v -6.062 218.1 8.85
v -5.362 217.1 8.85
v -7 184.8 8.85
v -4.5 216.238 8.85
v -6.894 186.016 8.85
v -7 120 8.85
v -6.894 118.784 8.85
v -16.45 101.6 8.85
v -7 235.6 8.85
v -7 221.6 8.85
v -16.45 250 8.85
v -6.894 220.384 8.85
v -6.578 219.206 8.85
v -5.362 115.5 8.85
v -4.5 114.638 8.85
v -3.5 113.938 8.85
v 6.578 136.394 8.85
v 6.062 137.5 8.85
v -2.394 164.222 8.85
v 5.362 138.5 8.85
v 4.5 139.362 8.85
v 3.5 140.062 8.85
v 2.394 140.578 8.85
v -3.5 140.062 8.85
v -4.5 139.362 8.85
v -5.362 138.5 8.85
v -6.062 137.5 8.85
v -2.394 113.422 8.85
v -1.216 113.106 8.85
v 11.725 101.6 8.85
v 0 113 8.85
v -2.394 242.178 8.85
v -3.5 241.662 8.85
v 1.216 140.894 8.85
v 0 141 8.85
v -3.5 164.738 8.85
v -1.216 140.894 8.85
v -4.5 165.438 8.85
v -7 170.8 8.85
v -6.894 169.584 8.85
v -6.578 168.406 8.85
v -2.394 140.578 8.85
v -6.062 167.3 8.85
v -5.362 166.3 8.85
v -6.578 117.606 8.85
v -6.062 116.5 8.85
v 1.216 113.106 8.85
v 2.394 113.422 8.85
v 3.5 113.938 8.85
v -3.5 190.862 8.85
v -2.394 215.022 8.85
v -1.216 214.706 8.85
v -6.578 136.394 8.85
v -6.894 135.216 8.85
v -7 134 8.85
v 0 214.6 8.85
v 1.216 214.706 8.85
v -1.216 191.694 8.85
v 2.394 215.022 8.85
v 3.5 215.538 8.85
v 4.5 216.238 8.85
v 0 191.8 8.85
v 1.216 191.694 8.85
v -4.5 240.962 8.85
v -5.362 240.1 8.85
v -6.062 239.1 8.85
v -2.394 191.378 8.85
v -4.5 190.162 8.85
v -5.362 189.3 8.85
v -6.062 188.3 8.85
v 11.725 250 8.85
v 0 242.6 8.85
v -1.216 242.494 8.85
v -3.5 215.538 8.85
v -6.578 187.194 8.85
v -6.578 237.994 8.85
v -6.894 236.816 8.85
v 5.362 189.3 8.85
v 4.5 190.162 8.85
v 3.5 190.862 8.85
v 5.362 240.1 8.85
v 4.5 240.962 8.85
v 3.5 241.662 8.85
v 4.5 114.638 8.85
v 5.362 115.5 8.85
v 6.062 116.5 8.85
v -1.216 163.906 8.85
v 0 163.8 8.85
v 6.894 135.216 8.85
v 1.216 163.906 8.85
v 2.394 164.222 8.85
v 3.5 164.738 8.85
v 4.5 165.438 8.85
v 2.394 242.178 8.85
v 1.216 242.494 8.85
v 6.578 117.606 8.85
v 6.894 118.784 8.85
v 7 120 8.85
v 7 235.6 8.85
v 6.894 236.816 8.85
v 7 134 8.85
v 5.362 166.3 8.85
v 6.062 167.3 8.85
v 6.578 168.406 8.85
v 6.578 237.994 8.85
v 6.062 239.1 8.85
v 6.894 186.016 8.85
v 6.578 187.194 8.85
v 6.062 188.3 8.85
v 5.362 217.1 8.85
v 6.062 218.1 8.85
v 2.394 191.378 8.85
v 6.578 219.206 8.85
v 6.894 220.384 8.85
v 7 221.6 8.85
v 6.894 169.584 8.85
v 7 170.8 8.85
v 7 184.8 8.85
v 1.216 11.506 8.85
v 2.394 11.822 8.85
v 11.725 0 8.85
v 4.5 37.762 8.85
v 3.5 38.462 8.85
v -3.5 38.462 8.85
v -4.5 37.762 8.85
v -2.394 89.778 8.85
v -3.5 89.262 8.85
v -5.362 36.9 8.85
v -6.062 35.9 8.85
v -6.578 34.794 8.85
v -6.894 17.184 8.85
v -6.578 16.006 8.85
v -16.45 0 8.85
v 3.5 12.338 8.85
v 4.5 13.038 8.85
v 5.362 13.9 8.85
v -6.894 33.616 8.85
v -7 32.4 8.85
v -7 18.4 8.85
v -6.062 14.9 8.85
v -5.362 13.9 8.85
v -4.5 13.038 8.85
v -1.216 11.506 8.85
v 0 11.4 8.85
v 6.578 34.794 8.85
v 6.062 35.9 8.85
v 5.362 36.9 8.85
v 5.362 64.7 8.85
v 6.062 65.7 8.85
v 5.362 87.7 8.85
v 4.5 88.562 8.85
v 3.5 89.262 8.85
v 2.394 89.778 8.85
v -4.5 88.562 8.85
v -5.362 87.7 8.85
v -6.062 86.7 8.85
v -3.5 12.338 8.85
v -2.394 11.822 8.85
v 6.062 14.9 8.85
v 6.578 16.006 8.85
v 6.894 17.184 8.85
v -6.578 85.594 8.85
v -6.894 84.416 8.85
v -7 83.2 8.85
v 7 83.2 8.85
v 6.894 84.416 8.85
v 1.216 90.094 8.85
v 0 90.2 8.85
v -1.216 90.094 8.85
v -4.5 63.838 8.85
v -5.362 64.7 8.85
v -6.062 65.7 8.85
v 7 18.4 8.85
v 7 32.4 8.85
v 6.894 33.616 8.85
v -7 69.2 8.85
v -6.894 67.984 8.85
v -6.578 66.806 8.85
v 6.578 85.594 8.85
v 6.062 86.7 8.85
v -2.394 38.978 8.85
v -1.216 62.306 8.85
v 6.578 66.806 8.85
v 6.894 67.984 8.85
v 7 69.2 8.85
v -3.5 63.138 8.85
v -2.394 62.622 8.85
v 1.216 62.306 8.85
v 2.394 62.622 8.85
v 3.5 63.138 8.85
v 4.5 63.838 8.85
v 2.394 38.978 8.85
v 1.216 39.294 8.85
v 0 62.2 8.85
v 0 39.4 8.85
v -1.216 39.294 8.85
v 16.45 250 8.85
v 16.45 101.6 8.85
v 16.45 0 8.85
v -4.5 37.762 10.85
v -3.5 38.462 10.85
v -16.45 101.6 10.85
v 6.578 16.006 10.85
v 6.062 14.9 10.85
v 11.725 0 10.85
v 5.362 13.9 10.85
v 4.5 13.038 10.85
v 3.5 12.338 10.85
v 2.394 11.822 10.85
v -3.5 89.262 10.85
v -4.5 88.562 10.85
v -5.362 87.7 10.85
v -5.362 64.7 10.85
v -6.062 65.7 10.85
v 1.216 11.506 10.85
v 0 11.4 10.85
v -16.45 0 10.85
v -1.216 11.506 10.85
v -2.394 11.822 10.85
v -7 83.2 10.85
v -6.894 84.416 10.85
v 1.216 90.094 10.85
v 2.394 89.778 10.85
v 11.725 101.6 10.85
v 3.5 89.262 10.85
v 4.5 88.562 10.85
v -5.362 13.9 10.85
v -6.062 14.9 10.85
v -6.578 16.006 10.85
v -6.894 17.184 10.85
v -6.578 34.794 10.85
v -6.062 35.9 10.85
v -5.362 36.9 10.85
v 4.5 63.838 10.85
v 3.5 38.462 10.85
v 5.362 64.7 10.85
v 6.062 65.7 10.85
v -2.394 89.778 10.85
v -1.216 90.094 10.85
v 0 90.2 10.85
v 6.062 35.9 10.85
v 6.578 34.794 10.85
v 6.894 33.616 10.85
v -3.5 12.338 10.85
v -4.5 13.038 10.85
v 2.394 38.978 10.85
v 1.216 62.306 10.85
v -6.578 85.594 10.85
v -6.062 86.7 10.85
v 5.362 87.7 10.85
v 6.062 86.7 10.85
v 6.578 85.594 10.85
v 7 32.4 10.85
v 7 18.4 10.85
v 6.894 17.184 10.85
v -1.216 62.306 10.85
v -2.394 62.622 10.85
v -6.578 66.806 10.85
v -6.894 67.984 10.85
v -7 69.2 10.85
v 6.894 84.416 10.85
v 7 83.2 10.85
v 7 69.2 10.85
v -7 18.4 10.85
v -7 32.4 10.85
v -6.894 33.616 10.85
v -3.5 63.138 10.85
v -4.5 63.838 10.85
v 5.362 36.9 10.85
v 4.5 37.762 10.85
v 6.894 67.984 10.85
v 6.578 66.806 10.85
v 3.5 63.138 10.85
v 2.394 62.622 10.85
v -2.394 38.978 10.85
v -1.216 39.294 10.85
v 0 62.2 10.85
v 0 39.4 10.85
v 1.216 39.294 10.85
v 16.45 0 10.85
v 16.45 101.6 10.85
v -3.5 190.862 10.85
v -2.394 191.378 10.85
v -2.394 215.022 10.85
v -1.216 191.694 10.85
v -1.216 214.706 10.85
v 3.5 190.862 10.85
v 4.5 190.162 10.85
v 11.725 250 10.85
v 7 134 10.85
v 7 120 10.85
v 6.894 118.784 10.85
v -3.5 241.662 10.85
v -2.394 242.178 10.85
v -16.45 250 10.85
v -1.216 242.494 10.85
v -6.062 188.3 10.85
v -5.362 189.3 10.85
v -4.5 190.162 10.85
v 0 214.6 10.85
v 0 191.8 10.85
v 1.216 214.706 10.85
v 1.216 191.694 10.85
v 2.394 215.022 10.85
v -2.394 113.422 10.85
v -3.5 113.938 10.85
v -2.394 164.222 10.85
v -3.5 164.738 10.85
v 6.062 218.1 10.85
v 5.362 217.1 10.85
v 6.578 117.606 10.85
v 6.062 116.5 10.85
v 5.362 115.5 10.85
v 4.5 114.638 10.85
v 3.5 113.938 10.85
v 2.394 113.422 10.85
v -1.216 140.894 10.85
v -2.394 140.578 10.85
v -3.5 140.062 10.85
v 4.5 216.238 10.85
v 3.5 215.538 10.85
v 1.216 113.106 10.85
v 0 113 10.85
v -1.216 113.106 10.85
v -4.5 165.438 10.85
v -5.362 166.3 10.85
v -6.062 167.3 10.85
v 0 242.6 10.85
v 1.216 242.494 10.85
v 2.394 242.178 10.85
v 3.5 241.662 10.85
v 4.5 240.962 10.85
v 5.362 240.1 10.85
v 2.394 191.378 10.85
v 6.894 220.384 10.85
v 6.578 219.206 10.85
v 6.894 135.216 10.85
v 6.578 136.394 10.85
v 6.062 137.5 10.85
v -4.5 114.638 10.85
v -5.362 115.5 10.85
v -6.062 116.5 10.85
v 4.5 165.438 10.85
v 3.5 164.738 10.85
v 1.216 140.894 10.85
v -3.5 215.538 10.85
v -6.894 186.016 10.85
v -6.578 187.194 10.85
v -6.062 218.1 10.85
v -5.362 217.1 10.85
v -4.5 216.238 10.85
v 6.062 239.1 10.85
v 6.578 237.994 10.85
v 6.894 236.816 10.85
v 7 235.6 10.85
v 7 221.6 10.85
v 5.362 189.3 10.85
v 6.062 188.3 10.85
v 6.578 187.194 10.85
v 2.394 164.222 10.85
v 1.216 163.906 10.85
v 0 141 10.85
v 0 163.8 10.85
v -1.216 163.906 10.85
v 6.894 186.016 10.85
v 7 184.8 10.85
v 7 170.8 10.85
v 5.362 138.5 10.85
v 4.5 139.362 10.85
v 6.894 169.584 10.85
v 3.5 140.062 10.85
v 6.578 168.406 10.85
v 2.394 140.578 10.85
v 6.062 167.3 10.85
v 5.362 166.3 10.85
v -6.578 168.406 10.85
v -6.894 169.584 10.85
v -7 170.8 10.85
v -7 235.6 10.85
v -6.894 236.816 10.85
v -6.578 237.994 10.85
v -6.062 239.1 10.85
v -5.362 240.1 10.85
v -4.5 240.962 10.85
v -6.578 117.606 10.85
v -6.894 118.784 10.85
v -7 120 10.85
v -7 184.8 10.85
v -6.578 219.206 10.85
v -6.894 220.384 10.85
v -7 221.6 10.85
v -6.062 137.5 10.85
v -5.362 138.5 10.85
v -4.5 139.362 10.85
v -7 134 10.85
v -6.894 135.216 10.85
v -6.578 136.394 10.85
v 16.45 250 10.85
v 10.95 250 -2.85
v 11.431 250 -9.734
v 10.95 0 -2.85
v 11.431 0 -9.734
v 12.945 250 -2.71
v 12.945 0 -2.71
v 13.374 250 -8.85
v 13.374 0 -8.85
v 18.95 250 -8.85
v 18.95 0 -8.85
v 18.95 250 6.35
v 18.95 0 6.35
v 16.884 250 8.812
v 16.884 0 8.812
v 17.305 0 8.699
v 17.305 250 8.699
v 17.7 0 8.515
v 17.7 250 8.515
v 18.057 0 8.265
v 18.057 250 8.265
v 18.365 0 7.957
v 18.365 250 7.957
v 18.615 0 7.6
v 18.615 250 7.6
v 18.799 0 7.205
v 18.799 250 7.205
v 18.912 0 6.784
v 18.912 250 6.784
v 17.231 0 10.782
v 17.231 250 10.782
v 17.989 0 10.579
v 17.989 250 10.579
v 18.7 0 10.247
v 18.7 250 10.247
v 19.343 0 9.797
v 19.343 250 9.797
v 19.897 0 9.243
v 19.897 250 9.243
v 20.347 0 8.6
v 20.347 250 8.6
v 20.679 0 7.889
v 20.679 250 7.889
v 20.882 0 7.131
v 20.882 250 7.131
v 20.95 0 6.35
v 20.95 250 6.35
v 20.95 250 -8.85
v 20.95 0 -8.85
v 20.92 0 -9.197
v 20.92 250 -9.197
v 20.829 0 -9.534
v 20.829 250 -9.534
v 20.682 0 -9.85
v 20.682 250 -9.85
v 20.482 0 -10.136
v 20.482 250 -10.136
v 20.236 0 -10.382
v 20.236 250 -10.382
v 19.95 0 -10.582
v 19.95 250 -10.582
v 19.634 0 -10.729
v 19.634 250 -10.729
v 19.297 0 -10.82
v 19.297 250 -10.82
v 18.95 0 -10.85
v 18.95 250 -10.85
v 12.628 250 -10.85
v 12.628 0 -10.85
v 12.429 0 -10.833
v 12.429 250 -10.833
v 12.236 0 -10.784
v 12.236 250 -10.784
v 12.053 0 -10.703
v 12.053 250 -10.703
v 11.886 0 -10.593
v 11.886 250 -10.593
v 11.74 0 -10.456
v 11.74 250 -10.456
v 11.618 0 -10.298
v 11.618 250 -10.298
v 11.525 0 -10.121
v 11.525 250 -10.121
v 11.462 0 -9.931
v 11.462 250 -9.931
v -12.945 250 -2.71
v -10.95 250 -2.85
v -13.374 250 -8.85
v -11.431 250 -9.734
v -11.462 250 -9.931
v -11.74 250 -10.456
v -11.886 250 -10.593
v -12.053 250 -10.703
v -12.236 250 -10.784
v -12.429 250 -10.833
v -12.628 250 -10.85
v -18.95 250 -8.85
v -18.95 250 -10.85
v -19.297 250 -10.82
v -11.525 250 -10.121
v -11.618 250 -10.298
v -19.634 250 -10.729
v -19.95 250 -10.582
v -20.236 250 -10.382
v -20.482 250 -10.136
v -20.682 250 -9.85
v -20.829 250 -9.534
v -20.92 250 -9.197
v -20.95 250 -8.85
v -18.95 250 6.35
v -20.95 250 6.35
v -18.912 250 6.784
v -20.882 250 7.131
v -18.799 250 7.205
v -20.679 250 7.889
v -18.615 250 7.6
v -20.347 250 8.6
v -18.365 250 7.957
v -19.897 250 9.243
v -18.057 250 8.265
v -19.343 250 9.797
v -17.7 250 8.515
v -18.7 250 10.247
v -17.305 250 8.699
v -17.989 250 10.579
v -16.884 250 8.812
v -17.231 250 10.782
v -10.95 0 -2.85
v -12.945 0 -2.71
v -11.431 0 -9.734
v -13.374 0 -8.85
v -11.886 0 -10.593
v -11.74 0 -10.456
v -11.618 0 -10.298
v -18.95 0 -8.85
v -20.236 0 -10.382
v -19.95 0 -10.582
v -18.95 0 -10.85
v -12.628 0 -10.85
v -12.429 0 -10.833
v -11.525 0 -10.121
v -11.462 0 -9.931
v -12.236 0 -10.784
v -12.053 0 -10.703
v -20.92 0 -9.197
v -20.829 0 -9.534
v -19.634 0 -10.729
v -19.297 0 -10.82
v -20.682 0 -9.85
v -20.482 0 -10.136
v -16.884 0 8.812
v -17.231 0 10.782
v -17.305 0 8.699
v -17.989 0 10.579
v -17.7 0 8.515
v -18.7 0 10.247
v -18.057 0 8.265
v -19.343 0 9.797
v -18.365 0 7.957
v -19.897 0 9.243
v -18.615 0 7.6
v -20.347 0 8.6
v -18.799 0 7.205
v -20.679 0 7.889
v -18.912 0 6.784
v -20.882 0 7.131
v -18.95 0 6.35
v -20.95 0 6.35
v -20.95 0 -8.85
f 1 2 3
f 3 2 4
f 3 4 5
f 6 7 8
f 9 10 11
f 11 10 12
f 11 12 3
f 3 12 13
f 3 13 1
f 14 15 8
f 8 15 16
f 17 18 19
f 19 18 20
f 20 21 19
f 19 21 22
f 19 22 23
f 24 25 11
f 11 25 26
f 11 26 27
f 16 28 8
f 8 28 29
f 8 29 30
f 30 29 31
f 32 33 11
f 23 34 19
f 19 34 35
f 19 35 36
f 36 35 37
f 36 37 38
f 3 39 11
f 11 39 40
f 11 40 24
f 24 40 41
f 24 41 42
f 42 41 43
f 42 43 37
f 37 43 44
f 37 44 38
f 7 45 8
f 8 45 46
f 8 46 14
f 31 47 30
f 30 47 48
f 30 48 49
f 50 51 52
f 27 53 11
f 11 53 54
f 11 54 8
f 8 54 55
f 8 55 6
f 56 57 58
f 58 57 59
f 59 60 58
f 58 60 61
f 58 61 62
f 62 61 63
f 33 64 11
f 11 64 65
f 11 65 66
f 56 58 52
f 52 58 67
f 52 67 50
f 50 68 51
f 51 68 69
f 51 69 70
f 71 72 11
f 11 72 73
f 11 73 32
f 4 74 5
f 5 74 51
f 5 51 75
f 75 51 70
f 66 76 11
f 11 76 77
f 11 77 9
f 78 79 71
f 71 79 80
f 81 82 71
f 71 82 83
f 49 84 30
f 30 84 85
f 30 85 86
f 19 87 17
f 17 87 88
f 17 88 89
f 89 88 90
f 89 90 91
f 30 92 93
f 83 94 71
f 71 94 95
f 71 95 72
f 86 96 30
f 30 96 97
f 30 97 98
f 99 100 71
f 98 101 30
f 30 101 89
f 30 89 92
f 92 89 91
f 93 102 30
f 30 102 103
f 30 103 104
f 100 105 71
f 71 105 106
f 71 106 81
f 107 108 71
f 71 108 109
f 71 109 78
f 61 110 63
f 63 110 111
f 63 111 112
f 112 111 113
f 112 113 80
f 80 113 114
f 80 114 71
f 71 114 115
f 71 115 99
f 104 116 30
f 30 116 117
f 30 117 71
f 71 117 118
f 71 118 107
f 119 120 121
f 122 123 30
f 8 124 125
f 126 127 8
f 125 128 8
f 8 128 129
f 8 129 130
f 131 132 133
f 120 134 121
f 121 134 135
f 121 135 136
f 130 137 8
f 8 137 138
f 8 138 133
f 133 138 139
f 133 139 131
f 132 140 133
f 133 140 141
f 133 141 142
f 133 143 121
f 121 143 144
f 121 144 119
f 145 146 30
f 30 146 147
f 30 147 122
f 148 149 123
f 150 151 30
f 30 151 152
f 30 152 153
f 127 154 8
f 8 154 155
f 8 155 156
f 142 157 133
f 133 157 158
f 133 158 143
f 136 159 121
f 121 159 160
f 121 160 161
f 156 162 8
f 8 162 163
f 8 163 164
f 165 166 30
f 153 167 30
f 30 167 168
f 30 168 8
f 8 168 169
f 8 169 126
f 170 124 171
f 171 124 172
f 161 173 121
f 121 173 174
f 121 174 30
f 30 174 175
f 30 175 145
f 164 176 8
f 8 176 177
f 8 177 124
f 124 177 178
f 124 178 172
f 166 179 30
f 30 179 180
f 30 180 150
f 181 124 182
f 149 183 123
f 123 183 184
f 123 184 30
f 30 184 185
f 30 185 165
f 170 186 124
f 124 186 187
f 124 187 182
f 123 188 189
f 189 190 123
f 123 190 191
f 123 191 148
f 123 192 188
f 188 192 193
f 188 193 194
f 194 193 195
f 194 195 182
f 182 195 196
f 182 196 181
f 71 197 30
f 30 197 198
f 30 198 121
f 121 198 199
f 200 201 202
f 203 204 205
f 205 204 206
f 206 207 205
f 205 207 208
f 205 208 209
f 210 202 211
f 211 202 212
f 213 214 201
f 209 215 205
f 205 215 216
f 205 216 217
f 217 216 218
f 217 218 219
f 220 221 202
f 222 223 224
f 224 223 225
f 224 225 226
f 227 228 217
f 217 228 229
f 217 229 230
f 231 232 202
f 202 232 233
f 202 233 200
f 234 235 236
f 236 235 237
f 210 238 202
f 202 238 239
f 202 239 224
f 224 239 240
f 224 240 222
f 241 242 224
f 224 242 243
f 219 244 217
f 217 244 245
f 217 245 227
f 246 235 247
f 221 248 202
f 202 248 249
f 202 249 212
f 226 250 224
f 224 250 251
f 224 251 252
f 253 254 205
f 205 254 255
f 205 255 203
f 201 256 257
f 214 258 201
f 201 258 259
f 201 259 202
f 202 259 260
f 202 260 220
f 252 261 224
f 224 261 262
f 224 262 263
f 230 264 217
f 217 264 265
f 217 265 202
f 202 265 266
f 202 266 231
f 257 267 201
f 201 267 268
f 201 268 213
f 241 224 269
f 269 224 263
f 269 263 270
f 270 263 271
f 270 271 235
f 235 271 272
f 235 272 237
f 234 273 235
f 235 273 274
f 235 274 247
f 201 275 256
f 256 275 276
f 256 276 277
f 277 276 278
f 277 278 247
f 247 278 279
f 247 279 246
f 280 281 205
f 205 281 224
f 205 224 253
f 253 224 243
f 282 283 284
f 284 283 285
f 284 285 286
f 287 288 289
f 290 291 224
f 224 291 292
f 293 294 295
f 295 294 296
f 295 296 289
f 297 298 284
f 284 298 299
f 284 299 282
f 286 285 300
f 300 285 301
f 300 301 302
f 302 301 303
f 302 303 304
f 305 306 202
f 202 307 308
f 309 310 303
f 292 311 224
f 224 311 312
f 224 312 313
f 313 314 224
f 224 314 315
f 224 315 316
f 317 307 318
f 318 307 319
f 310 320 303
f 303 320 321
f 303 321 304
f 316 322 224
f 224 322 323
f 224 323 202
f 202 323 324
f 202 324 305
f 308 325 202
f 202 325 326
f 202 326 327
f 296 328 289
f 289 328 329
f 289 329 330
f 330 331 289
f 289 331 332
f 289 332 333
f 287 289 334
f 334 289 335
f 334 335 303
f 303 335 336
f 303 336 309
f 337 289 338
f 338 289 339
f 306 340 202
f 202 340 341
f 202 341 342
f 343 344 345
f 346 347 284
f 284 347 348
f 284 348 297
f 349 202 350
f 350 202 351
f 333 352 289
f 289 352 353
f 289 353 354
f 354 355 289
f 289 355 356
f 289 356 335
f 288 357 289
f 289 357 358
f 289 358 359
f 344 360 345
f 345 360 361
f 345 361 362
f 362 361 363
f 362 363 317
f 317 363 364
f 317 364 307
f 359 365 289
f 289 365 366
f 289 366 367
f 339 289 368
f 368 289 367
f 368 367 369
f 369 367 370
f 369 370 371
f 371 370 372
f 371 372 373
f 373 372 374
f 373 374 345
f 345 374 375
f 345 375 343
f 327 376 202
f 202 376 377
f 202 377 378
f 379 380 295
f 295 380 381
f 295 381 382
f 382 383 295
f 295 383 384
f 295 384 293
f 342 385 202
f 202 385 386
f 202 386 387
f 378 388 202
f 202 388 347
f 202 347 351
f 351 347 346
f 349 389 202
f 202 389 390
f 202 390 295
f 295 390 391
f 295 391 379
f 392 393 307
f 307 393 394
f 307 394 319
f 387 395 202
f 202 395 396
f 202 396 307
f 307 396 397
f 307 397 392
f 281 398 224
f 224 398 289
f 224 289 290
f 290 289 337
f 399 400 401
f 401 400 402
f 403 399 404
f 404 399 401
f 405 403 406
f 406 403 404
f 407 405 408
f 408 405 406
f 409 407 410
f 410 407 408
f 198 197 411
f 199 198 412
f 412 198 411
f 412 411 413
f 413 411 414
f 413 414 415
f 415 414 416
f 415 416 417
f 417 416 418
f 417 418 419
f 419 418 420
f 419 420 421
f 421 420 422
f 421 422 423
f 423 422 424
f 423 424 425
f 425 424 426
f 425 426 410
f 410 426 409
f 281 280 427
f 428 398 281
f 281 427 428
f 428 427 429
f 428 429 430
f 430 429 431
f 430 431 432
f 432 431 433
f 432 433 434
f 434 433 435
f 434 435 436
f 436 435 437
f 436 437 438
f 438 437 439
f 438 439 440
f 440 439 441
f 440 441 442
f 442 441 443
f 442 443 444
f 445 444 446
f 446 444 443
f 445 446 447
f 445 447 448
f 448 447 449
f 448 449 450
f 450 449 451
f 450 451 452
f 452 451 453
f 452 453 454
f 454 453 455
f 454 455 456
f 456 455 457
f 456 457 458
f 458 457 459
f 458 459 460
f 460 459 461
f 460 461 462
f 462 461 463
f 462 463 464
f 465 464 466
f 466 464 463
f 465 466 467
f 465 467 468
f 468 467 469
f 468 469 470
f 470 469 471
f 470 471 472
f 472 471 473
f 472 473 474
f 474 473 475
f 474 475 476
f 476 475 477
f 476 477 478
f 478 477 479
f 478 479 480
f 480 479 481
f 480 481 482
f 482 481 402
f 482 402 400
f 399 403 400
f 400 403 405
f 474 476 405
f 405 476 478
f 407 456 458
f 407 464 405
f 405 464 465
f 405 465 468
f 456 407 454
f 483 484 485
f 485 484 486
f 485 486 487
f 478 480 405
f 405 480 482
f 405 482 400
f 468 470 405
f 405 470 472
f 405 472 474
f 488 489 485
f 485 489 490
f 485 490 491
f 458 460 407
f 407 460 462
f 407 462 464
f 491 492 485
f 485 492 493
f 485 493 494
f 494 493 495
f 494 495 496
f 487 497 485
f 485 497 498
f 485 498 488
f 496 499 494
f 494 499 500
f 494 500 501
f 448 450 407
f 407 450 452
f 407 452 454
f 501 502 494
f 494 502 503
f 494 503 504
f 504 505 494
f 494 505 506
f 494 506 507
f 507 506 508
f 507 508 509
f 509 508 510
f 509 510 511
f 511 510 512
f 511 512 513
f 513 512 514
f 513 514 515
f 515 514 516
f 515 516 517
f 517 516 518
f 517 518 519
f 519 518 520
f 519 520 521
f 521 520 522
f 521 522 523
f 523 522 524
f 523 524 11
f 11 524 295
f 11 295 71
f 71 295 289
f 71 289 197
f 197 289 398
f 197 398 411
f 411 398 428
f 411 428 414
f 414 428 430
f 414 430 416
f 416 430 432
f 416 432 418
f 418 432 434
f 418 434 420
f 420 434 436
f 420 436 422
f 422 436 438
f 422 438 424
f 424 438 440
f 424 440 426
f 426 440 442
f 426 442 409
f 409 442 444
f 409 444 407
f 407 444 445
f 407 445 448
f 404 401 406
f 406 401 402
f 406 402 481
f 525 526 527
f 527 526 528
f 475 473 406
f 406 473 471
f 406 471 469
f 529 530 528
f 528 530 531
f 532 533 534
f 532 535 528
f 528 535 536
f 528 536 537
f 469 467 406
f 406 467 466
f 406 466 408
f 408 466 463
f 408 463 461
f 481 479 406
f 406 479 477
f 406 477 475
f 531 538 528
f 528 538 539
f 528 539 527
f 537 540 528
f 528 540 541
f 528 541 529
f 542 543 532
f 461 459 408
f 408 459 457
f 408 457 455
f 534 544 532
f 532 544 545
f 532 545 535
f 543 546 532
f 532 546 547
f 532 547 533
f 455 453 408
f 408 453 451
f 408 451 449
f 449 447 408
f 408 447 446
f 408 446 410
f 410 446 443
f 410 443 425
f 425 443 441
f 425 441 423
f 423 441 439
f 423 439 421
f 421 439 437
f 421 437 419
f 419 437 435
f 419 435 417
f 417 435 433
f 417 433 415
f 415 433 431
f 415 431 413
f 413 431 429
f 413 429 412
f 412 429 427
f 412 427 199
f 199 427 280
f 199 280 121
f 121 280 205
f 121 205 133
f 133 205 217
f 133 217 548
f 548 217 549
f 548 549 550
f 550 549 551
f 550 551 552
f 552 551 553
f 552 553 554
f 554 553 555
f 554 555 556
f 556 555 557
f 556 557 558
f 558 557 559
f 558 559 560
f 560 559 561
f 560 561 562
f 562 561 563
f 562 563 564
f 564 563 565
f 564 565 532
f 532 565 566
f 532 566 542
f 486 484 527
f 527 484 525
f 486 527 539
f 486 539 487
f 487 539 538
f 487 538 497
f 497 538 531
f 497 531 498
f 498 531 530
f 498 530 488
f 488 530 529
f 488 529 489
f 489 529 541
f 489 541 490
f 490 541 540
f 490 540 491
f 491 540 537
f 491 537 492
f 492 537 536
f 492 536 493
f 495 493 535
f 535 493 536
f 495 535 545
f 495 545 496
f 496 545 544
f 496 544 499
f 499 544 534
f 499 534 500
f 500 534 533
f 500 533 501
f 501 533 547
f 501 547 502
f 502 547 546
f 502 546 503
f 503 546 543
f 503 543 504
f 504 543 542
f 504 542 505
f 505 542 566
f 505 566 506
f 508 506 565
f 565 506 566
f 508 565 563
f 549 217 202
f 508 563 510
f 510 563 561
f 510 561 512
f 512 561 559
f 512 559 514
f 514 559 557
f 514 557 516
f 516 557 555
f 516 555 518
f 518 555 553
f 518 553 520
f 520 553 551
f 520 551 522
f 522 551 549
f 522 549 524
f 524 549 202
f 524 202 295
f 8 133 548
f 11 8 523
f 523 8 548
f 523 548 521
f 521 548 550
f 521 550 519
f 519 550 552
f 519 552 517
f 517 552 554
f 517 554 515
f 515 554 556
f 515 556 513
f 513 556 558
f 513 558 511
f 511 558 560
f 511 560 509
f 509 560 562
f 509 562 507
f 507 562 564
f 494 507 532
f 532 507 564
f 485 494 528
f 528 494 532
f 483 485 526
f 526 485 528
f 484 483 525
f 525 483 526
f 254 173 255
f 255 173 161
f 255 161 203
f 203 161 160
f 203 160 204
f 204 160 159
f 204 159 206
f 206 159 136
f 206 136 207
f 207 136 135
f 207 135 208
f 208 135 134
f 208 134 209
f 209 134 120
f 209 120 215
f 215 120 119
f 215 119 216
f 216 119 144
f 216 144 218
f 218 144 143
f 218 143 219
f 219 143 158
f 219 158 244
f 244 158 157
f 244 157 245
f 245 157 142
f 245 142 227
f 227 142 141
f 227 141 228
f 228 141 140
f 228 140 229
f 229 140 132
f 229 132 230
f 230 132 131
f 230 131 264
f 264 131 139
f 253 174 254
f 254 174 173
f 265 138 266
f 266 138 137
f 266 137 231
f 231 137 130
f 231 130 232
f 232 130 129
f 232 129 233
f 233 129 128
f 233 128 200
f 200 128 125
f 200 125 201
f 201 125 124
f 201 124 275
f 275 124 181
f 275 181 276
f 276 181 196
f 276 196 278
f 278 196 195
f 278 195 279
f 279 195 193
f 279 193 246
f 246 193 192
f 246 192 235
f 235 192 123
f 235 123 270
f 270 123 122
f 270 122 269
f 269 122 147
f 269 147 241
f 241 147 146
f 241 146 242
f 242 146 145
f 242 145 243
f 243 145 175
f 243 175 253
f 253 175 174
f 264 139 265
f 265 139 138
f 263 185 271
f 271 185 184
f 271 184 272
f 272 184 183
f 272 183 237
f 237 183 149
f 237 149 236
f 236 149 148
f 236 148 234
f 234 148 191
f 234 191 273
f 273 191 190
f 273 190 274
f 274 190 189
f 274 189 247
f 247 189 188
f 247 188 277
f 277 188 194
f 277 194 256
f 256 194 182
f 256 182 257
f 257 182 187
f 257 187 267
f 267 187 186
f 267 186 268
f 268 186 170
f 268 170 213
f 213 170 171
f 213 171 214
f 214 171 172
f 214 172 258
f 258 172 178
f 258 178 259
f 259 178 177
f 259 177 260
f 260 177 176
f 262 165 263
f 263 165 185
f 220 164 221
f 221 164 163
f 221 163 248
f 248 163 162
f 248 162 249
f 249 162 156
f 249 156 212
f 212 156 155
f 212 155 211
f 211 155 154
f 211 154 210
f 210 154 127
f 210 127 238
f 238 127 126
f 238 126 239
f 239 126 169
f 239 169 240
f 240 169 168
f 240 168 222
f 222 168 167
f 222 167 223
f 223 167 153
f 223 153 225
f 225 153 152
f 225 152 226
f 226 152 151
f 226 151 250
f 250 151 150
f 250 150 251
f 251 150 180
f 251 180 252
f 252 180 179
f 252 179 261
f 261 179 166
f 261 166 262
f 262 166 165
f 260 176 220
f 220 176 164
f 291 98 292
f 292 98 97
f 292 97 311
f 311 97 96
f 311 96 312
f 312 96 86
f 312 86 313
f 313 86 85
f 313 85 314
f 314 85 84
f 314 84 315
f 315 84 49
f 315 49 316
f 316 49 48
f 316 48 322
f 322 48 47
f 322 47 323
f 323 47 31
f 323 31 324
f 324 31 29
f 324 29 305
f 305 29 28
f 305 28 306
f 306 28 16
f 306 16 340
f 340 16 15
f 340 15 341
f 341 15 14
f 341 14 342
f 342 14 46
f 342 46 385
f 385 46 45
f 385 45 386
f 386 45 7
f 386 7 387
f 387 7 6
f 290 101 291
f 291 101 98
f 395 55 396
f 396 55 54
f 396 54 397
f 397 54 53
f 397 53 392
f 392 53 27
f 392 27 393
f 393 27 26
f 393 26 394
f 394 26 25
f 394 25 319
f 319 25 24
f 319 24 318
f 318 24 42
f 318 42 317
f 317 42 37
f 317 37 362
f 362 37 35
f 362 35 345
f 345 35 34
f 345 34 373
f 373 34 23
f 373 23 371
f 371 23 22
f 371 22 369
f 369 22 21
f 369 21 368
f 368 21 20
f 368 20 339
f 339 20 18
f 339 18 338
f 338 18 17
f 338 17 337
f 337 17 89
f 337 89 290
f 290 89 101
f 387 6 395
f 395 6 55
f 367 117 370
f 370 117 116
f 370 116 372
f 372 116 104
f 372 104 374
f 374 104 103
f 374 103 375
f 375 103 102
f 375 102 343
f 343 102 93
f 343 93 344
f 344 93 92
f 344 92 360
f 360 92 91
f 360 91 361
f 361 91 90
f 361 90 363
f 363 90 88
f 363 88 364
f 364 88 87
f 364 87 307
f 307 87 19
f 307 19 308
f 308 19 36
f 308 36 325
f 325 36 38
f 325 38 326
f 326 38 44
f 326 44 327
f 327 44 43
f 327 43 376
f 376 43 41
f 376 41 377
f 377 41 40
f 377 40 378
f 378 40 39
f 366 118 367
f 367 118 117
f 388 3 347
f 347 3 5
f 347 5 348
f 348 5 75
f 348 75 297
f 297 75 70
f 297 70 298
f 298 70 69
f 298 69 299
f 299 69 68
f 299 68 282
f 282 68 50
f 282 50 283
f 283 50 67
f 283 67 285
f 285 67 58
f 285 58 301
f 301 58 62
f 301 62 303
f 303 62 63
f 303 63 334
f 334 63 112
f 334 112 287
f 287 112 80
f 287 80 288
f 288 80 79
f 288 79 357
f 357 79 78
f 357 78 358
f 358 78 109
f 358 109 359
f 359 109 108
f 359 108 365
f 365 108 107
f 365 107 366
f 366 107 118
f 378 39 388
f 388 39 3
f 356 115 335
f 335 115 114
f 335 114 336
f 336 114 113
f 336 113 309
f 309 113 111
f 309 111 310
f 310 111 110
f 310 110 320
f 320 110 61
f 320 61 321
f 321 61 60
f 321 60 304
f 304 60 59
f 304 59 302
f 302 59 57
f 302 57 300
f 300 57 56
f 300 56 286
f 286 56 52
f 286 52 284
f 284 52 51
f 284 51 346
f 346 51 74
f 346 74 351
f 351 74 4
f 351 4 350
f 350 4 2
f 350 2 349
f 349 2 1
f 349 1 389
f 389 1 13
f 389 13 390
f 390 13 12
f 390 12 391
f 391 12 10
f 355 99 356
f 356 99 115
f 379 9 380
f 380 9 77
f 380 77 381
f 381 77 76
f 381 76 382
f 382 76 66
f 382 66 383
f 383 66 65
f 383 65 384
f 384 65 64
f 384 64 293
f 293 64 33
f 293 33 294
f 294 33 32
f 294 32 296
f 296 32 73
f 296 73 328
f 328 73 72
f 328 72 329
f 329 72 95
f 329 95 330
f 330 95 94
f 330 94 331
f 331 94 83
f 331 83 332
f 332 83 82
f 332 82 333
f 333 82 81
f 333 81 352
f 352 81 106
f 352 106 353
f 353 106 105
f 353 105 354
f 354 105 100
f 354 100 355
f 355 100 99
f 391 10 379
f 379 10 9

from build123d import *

# Parameters (mm, degrees)
BEAM_DEPTH          = 250
PUNCH_DEPTH         = 252.110782325
PATTERN_PUNCH_COUNT = 5
PATTERN_PUNCH_PITCH = 50.8


with BuildPart() as part:
    # sk_profile → beam (new body)
    with BuildSketch(Plane(origin=(0, 0, 0), x_dir=(1, 0, 0), z_dir=(0, 1, 0))):
        with BuildLine():
            Line((0, -10.85), (16.45, -10.85))
            ThreePointArc((16.45, -10.85), (19.631980515, -9.531980515), (20.95, -6.35))
            Line((20.95, -6.35), (20.95, 8.85))
            ThreePointArc((20.95, 8.85), (20.364213562, 10.264213562), (18.95, 10.85))
            Line((18.95, 10.85), (12.628432599, 10.85))
            ThreePointArc((12.628432599, 10.85), (11.810034567, 10.527624442), (11.431355739, 9.733707768))
            Line((11.431355739, 9.733707768), (10.95, 2.85))
            Line((10.95, 2.85), (12.945128101, 2.710487053))
            Line((12.945128101, 2.710487053), (13.374444668, 8.85))
            Line((13.374444668, 8.85), (18.95, 8.85))
            Line((18.95, 8.85), (18.95, -6.35))
            ThreePointArc((18.95, -6.35), (18.217766953, -8.117766953), (16.45, -8.85))
            Line((16.45, -8.85), (0, -8.85))
            Line((0, -8.85), (0, -10.85))
        make_face()
    beam = extrude(amount=BEAM_DEPTH)

    # mirror_half: beam across plane
    add(beam.mirror(Plane(origin=(0, 0, 0), x_dir=(0, 0, 1), z_dir=(1, 0, 0))))

    # Sketch4 → punch (cut, through all)
    with BuildSketch(Plane.XY):
        with BuildLine():
            Line((-7, 18.4), (-7, 32.4))
            ThreePointArc((-7, 32.4), (0, 39.4), (7, 32.4))
            Line((7, 32.4), (7, 18.4))
            ThreePointArc((7, 18.4), (0, 11.4), (-7, 18.4))
        make_face()
    punch = extrude(amount=PUNCH_DEPTH, mode=Mode.SUBTRACT)

    # pattern_punch: punch ×5
    with Locations(*[(0, i * PATTERN_PUNCH_PITCH, 0) for i in range(1, PATTERN_PUNCH_COUNT)]):
        add(punch, mode=Mode.SUBTRACT)


solid = part.part
